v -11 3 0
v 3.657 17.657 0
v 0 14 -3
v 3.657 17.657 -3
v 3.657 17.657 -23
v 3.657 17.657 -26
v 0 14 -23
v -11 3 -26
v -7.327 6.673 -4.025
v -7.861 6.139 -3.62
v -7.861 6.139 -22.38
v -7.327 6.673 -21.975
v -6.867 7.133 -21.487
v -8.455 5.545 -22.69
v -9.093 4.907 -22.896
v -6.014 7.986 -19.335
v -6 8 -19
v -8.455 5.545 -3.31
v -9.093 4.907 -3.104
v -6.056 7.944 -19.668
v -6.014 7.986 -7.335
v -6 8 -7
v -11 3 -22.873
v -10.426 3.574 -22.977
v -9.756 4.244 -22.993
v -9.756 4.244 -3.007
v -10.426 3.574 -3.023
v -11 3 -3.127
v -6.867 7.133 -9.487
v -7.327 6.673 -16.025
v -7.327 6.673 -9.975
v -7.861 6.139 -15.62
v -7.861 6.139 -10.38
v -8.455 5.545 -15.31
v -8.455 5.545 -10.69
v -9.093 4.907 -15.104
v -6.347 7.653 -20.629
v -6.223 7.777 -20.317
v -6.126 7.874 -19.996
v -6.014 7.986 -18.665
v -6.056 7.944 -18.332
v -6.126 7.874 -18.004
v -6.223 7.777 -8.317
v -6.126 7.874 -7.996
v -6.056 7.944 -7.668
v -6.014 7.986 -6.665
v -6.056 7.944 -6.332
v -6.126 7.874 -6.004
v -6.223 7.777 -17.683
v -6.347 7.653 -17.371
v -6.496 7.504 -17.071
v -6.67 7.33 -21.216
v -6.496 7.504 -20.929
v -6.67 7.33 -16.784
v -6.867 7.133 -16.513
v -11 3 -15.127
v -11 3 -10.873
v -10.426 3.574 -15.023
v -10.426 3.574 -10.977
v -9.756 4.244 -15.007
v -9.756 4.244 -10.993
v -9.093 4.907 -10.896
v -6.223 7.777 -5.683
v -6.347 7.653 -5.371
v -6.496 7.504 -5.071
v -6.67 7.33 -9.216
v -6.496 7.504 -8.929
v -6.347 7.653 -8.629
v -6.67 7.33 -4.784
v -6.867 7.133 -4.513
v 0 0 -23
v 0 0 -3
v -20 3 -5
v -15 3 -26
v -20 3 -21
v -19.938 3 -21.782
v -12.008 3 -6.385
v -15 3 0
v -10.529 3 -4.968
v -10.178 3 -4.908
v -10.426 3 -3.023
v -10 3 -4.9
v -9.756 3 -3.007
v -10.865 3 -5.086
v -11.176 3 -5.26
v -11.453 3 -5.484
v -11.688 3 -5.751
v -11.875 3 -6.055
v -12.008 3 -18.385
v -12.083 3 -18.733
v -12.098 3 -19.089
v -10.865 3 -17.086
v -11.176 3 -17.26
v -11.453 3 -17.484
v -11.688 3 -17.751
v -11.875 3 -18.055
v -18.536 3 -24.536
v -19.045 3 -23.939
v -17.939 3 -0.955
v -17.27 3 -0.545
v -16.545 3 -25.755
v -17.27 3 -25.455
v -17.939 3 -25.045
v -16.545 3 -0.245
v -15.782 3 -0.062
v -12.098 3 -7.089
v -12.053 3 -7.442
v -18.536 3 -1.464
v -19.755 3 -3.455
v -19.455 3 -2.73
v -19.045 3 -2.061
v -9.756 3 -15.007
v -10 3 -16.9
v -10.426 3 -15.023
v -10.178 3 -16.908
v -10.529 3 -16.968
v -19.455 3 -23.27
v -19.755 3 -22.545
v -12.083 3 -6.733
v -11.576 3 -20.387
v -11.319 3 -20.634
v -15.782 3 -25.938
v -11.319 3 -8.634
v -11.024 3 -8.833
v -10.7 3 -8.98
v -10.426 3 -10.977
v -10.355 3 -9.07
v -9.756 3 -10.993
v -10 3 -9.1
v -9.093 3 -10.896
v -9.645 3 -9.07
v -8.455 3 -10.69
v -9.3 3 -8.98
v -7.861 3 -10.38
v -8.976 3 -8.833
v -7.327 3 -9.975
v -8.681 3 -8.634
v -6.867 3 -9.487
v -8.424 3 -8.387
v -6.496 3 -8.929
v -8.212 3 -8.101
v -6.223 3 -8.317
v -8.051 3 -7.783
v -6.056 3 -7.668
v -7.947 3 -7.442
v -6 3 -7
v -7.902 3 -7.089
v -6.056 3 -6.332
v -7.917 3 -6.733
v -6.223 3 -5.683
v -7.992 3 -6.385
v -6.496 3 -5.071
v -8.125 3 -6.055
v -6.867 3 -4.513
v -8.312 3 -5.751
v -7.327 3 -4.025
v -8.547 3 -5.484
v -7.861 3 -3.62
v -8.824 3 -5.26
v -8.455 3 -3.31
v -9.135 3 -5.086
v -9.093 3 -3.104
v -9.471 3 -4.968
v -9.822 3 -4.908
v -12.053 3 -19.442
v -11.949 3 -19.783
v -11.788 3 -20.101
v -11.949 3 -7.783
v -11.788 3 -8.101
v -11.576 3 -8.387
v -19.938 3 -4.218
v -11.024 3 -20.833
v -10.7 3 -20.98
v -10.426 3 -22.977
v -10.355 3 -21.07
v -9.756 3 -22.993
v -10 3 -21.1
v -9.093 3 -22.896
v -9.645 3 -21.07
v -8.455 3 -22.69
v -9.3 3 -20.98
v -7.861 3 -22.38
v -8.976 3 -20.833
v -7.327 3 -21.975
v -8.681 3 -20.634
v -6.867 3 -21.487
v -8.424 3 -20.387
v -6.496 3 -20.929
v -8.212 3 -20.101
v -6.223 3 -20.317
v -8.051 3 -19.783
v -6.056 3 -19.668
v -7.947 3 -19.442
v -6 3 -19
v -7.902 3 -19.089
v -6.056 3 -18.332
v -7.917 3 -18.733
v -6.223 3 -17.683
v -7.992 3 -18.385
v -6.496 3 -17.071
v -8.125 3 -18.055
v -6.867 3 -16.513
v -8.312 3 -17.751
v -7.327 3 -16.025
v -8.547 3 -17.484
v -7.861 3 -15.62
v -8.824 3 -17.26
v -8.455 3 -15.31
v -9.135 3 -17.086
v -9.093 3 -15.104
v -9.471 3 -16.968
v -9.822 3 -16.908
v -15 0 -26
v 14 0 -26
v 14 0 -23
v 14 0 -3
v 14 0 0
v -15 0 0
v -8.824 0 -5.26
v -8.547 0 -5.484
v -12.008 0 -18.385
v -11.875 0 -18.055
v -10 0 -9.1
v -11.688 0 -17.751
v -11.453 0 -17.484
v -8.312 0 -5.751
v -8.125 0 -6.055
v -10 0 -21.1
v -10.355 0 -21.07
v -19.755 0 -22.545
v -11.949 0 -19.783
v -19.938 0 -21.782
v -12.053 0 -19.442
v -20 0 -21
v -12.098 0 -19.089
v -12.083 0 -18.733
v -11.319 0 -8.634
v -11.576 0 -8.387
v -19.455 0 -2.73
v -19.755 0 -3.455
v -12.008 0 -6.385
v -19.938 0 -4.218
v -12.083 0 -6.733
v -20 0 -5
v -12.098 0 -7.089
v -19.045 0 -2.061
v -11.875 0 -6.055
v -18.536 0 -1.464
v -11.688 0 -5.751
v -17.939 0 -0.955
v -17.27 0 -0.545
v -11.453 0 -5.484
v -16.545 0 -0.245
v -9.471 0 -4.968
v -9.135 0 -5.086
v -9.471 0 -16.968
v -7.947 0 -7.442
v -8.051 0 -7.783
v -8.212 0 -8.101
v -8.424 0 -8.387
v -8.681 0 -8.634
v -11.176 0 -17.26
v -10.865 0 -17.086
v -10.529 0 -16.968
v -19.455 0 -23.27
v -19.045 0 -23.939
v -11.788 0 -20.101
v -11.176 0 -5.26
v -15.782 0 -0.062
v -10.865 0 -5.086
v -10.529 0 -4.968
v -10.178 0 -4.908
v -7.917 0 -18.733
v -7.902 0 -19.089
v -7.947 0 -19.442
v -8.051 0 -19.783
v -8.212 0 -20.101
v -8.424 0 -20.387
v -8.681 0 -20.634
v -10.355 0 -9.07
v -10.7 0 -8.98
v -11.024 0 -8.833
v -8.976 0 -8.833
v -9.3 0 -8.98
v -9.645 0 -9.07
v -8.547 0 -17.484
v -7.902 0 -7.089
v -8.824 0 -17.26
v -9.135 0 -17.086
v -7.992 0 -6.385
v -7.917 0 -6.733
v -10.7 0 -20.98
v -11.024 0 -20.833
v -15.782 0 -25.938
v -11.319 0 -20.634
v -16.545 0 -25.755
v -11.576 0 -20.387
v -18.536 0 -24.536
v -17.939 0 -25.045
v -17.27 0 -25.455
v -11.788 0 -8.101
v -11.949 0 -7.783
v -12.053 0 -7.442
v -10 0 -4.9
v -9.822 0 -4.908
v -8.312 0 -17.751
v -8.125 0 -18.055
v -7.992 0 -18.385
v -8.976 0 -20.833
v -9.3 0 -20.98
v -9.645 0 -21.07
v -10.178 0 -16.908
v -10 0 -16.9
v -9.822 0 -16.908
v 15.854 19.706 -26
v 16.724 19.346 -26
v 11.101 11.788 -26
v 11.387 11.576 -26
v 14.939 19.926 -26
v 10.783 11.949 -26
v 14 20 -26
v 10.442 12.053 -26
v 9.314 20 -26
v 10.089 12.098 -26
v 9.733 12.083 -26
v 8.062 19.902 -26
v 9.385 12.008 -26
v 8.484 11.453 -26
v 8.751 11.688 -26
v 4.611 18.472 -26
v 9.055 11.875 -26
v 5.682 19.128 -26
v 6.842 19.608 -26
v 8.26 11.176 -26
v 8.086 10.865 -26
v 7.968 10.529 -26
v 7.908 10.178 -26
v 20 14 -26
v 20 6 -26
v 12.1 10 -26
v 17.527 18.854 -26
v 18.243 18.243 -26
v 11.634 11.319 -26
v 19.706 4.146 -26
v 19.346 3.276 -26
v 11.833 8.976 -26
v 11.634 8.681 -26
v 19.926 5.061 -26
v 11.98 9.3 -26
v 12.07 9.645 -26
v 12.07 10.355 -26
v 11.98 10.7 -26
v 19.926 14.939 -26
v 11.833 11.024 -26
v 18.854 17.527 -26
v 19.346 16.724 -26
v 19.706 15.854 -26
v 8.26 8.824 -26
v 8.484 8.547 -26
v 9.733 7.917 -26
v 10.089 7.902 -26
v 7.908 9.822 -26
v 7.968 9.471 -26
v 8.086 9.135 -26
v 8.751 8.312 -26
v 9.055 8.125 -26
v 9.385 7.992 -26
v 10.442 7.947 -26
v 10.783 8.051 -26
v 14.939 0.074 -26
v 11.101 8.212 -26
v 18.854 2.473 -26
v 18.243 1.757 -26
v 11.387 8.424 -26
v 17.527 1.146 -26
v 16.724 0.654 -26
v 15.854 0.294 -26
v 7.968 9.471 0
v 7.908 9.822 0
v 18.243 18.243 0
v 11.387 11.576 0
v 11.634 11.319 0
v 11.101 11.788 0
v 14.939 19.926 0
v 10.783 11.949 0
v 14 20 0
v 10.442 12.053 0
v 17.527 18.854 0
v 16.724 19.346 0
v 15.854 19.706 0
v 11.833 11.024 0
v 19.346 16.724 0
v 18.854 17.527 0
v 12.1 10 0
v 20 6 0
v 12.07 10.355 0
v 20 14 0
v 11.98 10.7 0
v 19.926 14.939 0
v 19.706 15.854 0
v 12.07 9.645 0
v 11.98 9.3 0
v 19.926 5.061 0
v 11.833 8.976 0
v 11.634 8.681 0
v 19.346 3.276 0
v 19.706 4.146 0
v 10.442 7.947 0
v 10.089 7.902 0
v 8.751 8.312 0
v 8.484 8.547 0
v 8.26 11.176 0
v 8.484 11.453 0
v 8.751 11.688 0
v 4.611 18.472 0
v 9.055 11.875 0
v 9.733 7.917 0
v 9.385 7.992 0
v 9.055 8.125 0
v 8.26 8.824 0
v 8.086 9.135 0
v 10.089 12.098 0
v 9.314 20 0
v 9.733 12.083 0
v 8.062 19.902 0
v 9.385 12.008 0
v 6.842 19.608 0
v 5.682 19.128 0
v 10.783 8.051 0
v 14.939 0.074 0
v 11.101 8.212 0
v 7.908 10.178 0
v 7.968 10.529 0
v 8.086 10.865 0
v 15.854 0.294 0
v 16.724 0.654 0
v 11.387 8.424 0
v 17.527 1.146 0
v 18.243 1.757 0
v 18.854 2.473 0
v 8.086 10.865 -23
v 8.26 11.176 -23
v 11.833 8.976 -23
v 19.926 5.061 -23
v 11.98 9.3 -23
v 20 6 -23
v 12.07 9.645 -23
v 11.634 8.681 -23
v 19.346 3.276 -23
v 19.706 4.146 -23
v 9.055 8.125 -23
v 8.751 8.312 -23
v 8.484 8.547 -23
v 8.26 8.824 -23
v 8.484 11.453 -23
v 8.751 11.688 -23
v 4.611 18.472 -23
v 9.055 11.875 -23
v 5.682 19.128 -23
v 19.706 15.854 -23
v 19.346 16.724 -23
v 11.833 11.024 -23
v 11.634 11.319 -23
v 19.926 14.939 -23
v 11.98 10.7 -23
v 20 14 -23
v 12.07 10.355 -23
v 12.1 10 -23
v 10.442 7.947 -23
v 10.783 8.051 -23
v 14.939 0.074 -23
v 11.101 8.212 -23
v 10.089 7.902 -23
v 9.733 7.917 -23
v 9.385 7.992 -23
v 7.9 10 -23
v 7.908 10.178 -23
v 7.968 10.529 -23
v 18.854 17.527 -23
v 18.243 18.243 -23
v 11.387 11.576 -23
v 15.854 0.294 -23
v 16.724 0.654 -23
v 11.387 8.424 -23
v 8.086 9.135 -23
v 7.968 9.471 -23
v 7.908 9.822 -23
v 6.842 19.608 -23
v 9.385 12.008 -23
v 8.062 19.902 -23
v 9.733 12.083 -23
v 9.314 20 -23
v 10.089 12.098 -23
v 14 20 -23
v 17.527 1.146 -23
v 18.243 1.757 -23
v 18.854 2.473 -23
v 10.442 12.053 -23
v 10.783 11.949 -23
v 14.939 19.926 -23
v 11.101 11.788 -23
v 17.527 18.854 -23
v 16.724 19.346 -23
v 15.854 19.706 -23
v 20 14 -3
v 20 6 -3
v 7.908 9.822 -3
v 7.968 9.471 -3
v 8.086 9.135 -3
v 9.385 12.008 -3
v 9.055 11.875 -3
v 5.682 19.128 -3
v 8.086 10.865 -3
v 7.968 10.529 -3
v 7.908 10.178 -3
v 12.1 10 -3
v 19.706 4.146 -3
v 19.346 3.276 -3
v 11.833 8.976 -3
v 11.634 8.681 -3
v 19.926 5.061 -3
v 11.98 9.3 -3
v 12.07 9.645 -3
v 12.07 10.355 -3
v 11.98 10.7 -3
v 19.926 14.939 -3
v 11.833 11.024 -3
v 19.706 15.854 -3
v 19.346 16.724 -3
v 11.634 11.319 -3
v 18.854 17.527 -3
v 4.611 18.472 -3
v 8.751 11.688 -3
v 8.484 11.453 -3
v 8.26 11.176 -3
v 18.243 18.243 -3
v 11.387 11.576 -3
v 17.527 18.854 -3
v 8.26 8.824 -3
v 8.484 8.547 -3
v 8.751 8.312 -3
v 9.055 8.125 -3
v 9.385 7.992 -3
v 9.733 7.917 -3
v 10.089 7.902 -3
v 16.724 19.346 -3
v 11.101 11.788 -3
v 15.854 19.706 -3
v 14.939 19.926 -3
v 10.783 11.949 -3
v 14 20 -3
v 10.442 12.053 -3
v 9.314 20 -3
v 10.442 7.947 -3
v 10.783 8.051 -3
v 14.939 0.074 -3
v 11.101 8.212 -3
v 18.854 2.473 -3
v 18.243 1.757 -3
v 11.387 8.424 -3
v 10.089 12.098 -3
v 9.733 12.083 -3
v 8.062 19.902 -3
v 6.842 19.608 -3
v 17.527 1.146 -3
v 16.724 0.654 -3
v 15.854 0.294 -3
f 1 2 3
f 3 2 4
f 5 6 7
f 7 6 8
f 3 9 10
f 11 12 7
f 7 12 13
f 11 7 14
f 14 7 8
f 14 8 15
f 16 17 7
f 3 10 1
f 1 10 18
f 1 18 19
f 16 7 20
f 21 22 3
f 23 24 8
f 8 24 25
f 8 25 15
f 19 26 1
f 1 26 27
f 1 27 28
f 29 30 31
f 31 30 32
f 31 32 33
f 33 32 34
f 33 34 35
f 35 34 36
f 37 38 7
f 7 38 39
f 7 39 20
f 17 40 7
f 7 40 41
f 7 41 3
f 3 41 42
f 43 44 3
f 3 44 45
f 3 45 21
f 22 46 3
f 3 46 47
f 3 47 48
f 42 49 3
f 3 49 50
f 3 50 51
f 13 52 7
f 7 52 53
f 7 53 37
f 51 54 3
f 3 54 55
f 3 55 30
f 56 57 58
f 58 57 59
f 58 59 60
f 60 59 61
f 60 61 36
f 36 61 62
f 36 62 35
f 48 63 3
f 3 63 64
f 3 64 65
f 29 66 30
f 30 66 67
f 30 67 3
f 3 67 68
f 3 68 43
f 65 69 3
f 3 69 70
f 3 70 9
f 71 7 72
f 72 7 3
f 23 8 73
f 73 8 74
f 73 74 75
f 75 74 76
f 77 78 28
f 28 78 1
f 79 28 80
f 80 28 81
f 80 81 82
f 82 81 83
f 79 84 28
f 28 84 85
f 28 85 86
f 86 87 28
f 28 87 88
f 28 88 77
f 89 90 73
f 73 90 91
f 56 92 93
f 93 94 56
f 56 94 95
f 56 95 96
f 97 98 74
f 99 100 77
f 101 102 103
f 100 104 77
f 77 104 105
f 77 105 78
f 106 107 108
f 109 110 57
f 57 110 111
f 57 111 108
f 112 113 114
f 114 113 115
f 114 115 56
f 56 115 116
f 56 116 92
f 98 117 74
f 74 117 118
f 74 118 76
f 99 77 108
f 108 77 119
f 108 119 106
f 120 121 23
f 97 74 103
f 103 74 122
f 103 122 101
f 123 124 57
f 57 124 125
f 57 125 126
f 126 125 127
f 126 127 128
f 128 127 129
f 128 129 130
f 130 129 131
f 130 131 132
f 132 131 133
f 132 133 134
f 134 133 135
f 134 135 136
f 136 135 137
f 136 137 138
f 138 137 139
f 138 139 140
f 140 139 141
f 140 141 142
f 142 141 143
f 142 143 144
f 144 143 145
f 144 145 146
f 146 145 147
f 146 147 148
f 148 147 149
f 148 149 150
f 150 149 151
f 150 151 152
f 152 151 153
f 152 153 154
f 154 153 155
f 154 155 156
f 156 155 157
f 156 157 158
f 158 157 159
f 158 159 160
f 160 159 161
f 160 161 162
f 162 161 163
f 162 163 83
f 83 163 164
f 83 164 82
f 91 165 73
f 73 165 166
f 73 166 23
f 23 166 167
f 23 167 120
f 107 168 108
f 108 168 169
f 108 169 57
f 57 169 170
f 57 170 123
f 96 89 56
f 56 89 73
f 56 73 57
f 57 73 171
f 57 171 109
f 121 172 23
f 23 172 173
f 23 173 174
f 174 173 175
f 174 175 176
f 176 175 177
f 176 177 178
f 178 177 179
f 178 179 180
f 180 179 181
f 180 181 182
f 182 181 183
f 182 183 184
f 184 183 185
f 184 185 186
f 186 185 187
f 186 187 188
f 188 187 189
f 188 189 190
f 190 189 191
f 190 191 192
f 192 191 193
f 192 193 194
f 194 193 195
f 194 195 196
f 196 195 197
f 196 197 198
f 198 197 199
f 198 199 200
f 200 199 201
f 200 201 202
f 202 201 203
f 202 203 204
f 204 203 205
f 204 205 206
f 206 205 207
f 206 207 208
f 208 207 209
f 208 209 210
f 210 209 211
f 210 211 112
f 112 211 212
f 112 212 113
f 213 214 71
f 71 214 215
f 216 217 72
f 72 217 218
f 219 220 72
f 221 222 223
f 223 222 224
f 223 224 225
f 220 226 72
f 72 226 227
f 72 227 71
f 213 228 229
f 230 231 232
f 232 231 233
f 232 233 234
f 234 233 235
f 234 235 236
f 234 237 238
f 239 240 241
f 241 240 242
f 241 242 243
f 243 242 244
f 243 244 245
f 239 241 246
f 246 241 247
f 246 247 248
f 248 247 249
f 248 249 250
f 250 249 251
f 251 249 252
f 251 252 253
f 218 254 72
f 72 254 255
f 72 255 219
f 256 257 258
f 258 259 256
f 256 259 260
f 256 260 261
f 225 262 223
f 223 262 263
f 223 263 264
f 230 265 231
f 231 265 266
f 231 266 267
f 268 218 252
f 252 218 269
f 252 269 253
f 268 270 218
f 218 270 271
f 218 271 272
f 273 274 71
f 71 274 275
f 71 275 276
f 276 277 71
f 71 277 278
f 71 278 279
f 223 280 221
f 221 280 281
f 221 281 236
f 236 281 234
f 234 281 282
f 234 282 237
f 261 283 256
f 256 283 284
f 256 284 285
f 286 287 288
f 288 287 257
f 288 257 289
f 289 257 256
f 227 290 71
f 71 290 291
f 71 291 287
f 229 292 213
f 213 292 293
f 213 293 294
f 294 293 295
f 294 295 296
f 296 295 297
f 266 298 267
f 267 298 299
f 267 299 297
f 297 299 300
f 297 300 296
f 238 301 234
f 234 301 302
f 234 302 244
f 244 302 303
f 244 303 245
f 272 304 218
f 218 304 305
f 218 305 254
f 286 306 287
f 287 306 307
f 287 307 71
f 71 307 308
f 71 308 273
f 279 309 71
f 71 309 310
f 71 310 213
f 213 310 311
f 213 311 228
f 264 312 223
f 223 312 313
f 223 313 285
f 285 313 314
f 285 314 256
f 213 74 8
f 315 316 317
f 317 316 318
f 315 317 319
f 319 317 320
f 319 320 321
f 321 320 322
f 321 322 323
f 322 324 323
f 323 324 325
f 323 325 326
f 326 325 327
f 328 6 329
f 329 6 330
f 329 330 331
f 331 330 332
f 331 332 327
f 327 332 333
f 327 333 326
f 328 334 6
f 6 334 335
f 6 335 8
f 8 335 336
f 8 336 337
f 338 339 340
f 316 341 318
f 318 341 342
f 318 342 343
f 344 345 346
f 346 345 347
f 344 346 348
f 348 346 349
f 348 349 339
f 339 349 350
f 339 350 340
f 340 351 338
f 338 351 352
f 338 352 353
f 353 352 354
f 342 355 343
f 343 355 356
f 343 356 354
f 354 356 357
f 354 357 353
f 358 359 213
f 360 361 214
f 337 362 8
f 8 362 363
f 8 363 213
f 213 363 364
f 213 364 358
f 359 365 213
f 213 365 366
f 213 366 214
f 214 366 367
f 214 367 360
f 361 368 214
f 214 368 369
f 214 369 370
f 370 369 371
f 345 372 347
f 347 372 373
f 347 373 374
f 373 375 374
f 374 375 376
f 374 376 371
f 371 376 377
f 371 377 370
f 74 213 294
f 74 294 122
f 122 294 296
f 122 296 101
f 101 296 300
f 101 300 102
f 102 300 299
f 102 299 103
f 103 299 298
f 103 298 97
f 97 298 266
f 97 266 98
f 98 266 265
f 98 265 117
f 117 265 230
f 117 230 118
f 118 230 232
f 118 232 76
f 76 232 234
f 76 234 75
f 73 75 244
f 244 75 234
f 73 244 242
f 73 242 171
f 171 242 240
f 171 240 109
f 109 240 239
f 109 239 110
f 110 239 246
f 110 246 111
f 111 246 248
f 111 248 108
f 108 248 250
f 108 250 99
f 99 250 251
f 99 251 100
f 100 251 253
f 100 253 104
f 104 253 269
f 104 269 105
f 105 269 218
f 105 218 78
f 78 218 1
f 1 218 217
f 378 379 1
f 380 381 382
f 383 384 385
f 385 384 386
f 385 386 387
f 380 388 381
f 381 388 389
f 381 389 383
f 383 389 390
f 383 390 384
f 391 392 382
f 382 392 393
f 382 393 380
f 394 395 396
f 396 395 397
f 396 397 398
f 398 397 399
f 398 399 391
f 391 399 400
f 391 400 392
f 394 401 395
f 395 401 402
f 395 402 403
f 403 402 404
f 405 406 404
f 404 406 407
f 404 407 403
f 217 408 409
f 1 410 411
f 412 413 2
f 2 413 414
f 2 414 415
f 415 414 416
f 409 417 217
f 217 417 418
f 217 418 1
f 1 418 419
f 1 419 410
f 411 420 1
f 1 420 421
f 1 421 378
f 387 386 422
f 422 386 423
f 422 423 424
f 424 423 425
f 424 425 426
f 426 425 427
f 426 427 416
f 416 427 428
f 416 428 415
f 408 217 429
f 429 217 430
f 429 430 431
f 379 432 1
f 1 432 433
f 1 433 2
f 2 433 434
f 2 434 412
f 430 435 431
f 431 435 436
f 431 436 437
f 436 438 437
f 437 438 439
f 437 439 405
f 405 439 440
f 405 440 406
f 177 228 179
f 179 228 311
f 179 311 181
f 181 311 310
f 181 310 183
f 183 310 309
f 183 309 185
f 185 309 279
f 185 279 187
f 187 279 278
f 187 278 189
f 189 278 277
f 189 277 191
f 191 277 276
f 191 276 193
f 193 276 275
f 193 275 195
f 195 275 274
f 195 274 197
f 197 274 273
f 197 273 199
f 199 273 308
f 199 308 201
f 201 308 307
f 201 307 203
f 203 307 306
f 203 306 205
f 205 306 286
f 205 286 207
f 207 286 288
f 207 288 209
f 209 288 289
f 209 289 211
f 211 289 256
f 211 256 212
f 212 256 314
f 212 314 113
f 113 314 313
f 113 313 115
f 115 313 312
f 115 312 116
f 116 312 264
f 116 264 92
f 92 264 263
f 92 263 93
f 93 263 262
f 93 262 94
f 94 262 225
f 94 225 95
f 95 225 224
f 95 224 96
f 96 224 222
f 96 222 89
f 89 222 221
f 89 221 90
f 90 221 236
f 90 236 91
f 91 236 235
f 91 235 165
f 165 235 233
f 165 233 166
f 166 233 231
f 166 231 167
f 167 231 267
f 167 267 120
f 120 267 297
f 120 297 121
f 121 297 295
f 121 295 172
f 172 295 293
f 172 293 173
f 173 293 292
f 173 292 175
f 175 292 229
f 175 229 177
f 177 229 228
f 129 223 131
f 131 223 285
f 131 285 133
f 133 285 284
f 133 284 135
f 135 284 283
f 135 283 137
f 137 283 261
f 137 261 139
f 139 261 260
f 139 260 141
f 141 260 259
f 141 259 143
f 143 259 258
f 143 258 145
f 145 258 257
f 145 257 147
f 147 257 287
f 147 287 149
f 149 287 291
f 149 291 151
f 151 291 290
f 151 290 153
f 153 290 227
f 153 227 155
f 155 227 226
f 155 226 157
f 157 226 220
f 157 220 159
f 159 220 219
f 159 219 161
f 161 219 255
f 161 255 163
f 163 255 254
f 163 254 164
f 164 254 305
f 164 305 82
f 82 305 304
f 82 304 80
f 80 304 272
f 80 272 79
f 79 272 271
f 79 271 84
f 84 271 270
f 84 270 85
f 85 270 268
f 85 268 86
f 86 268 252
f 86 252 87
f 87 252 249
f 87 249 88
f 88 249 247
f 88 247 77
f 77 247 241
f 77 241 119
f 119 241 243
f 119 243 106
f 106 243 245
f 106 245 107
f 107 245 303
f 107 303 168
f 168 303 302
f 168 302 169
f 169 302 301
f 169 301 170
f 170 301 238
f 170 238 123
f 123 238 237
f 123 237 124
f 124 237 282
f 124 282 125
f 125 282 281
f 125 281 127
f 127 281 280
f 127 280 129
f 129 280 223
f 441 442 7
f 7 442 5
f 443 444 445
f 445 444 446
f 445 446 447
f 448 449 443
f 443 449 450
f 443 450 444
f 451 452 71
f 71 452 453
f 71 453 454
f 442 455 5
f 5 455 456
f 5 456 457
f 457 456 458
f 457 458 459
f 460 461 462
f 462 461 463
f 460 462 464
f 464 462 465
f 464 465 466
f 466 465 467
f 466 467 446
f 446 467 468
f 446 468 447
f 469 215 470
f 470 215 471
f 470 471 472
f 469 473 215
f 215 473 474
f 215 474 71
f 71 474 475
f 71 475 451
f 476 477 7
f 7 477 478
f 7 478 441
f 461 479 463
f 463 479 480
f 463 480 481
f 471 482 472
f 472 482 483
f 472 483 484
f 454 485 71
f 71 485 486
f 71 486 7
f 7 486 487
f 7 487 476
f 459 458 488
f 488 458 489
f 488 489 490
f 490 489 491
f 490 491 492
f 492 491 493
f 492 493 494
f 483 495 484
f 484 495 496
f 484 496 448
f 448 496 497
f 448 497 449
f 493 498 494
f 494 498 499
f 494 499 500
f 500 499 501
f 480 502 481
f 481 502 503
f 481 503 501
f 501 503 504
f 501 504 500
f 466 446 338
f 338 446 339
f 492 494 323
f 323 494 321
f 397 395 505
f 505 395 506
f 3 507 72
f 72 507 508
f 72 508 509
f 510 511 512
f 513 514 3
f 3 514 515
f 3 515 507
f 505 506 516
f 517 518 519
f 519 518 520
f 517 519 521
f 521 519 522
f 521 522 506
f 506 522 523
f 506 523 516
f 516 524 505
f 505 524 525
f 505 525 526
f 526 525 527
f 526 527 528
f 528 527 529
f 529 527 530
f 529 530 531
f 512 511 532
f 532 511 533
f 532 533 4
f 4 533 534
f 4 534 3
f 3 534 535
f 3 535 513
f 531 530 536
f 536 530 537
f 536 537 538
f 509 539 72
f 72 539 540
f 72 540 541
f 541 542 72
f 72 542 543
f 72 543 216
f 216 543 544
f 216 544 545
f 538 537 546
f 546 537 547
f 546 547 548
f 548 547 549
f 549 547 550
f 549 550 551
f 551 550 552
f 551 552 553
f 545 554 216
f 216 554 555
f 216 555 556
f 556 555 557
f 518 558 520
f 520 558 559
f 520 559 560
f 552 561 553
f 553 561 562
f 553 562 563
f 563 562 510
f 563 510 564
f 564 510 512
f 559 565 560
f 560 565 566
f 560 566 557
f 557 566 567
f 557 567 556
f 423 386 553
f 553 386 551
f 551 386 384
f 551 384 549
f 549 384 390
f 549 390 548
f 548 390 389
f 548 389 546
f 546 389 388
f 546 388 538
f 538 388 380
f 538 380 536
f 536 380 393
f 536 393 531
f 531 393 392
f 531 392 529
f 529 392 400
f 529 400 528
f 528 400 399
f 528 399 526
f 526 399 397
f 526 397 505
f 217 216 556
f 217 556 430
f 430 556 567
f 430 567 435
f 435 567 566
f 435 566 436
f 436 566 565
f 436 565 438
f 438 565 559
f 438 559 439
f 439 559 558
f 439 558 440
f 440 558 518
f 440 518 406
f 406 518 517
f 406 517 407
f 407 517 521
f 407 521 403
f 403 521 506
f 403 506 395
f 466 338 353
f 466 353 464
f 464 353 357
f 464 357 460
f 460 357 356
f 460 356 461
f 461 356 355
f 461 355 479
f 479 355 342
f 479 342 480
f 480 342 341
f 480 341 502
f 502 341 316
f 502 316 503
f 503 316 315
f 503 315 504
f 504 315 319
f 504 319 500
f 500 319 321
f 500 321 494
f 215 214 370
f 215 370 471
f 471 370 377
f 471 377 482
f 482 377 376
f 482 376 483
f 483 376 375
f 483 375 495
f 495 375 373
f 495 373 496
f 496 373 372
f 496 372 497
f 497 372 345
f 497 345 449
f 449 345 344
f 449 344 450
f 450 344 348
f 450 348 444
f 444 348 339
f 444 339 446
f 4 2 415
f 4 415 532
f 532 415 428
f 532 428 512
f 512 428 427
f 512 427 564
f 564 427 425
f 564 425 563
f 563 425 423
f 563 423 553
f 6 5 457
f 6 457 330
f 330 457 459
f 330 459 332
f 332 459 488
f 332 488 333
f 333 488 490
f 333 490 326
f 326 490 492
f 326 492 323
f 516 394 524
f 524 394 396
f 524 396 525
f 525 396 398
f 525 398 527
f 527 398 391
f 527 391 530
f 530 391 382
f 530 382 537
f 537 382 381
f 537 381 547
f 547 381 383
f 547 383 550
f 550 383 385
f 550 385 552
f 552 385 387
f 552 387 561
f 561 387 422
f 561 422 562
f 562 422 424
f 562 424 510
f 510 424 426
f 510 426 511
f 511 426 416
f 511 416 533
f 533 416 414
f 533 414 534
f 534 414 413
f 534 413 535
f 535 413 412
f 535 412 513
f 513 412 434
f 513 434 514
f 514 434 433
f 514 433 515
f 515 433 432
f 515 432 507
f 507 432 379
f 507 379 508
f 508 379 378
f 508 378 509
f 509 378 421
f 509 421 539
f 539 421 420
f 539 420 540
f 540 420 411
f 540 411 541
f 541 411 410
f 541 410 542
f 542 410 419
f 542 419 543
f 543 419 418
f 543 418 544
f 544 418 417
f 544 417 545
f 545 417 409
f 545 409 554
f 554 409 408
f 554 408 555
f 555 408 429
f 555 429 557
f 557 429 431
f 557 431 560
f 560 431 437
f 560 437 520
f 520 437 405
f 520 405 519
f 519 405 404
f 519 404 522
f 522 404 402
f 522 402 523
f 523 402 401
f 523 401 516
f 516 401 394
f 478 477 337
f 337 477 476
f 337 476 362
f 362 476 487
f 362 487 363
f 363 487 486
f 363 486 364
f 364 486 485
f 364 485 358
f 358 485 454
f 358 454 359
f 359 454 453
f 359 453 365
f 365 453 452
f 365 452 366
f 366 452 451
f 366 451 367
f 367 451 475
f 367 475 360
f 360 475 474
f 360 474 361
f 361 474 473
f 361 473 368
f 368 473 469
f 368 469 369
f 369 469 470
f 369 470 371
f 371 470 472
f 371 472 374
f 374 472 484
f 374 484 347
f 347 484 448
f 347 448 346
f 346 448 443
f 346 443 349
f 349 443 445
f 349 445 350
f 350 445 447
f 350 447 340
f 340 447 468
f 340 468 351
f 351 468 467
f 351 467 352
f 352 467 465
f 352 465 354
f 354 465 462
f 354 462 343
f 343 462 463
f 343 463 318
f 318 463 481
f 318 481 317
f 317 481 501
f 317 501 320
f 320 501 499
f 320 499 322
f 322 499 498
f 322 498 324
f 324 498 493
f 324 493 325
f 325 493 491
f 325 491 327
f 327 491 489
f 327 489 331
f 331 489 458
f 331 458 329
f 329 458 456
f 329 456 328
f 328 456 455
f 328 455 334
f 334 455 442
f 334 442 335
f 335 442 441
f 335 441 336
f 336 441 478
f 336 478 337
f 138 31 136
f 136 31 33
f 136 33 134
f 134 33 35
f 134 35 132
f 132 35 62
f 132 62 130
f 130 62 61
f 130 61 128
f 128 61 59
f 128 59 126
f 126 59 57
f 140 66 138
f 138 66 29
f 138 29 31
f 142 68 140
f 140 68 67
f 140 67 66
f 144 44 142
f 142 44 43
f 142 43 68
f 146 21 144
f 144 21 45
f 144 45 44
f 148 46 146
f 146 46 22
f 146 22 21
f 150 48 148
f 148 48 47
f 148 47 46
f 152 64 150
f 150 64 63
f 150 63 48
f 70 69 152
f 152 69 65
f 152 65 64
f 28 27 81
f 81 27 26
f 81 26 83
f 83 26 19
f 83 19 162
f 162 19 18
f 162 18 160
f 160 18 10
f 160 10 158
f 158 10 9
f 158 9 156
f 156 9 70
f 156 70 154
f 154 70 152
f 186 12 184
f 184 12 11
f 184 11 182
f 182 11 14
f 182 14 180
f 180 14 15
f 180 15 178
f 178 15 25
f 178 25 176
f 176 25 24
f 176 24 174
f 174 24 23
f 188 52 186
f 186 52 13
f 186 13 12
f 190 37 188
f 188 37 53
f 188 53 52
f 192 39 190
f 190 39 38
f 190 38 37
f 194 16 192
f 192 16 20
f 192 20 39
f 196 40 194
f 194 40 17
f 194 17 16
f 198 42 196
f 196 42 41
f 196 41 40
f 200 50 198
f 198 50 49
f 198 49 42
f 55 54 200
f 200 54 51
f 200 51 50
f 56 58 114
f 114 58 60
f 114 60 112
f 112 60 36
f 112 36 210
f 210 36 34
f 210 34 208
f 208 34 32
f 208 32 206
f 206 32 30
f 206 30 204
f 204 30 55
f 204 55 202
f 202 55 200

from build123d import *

# Parameters (mm, degrees)
SKETCH_1_R          = 2.1
EXTRUDE_1_DEPTH     = 3
SKETCH_3_W          = 20
SKETCH_3_H          = 3
EXTRUDE_2_DEPTH     = 20
FILLET_2_R          = 6
CHAMFER_2_SIZE      = 6
FILLET_3_R          = 8
EXTRUDE_5_DEPTH     = 26
SKETCH_12_R         = 2.1
CUT_EXTRUDE_4_DEPTH = 30
SKETCH_13_R         = 4
CUT_EXTRUDE_5_DEPTH = 30


with BuildPart() as part:
    # 草图1 → 凸台-拉伸1 (new body)
    with BuildSketch(Plane(origin=(0, 0, 0), x_dir=(1, 0, 0), z_dir=(0, 1, 0))):
        with BuildLine():
            Line((0, 0), (-15, 0))
            ThreePointArc((-15, 0), (-18.535533906, 1.464466094), (-20, 5))
            Line((-20, 5), (-20, 21))
            ThreePointArc((-20, 21), (-18.535533906, 24.535533906), (-15, 26))
            Line((-15, 26), (0, 26))
            Line((0, 26), (0, 0))
        make_face()
        with Locations(Location((-10, 19, 0), (0, 0, 270))):
            Circle(SKETCH_1_R, mode=Mode.SUBTRACT)
        with Locations(Location((-10, 7, 0), (0, 0, 270))):
            Circle(SKETCH_1_R, mode=Mode.SUBTRACT)
    extrude(amount=EXTRUDE_1_DEPTH)

    # 草图3 → 凸台-拉伸2 (add)
    with BuildSketch(Plane(origin=(0, 0, 0), x_dir=(1, 0, 0), z_dir=(0, 1, 0))):
        with Locations((10, 24.5)):
            Rectangle(SKETCH_3_W, SKETCH_3_H)
        with Locations((10, 1.5)):
            Rectangle(SKETCH_3_W, SKETCH_3_H)
    extrude(amount=EXTRUDE_2_DEPTH)

    # 圆角2
    fillet_2_edges = [part.edges().sort_by_distance(p)[0] for p in [
        (20, 0, -24.5),
        (20, 20, -24.5),
        (20, 0, -1.5),
        (20, 20, -1.5),
    ]]
    fillet(fillet_2_edges, radius=FILLET_2_R)

    # 倒角2
    chamfer_2_edges = [part.edges().sort_by_distance(p)[0] for p in [
        (0, 20, -24.5),
        (0, 20, -1.5),
    ]]
    chamfer(chamfer_2_edges, length=CHAMFER_2_SIZE)

    # 圆角3
    fillet_3_edges = [part.edges().sort_by_distance(p)[0] for p in [
        (6, 20, -1.5),
        (6, 20, -24.5),
    ]]
    fillet(fillet_3_edges, radius=FILLET_3_R)

    # 草图8 → 凸台-拉伸5 (add)
    with BuildSketch(Plane(origin=(0, 0, -26), x_dir=(-1, 0, 0), z_dir=(0, 0, -1))):
        Polygon((0, 14), (11, 3), (0, 3), align=None)
    extrude(amount=-EXTRUDE_5_DEPTH)

    # 草图12 → 切除-拉伸4 (cut)
    with BuildSketch(Plane.XY):
        with Locations((10, 10)):
            Circle(SKETCH_12_R)
    extrude(amount=-CUT_EXTRUDE_4_DEPTH, mode=Mode.SUBTRACT)

    # 草图13 → 切除-拉伸5 (cut)
    with BuildSketch(Plane(origin=(0, 3, 0), x_dir=(1, 0, 0), z_dir=(0, 1, 0))):
        with Locations((-10, 19)):
            Circle(SKETCH_13_R)
        with Locations((-10, 7)):
            Circle(SKETCH_13_R)
    extrude(amount=CUT_EXTRUDE_5_DEPTH, mode=Mode.SUBTRACT)


solid = part.part
